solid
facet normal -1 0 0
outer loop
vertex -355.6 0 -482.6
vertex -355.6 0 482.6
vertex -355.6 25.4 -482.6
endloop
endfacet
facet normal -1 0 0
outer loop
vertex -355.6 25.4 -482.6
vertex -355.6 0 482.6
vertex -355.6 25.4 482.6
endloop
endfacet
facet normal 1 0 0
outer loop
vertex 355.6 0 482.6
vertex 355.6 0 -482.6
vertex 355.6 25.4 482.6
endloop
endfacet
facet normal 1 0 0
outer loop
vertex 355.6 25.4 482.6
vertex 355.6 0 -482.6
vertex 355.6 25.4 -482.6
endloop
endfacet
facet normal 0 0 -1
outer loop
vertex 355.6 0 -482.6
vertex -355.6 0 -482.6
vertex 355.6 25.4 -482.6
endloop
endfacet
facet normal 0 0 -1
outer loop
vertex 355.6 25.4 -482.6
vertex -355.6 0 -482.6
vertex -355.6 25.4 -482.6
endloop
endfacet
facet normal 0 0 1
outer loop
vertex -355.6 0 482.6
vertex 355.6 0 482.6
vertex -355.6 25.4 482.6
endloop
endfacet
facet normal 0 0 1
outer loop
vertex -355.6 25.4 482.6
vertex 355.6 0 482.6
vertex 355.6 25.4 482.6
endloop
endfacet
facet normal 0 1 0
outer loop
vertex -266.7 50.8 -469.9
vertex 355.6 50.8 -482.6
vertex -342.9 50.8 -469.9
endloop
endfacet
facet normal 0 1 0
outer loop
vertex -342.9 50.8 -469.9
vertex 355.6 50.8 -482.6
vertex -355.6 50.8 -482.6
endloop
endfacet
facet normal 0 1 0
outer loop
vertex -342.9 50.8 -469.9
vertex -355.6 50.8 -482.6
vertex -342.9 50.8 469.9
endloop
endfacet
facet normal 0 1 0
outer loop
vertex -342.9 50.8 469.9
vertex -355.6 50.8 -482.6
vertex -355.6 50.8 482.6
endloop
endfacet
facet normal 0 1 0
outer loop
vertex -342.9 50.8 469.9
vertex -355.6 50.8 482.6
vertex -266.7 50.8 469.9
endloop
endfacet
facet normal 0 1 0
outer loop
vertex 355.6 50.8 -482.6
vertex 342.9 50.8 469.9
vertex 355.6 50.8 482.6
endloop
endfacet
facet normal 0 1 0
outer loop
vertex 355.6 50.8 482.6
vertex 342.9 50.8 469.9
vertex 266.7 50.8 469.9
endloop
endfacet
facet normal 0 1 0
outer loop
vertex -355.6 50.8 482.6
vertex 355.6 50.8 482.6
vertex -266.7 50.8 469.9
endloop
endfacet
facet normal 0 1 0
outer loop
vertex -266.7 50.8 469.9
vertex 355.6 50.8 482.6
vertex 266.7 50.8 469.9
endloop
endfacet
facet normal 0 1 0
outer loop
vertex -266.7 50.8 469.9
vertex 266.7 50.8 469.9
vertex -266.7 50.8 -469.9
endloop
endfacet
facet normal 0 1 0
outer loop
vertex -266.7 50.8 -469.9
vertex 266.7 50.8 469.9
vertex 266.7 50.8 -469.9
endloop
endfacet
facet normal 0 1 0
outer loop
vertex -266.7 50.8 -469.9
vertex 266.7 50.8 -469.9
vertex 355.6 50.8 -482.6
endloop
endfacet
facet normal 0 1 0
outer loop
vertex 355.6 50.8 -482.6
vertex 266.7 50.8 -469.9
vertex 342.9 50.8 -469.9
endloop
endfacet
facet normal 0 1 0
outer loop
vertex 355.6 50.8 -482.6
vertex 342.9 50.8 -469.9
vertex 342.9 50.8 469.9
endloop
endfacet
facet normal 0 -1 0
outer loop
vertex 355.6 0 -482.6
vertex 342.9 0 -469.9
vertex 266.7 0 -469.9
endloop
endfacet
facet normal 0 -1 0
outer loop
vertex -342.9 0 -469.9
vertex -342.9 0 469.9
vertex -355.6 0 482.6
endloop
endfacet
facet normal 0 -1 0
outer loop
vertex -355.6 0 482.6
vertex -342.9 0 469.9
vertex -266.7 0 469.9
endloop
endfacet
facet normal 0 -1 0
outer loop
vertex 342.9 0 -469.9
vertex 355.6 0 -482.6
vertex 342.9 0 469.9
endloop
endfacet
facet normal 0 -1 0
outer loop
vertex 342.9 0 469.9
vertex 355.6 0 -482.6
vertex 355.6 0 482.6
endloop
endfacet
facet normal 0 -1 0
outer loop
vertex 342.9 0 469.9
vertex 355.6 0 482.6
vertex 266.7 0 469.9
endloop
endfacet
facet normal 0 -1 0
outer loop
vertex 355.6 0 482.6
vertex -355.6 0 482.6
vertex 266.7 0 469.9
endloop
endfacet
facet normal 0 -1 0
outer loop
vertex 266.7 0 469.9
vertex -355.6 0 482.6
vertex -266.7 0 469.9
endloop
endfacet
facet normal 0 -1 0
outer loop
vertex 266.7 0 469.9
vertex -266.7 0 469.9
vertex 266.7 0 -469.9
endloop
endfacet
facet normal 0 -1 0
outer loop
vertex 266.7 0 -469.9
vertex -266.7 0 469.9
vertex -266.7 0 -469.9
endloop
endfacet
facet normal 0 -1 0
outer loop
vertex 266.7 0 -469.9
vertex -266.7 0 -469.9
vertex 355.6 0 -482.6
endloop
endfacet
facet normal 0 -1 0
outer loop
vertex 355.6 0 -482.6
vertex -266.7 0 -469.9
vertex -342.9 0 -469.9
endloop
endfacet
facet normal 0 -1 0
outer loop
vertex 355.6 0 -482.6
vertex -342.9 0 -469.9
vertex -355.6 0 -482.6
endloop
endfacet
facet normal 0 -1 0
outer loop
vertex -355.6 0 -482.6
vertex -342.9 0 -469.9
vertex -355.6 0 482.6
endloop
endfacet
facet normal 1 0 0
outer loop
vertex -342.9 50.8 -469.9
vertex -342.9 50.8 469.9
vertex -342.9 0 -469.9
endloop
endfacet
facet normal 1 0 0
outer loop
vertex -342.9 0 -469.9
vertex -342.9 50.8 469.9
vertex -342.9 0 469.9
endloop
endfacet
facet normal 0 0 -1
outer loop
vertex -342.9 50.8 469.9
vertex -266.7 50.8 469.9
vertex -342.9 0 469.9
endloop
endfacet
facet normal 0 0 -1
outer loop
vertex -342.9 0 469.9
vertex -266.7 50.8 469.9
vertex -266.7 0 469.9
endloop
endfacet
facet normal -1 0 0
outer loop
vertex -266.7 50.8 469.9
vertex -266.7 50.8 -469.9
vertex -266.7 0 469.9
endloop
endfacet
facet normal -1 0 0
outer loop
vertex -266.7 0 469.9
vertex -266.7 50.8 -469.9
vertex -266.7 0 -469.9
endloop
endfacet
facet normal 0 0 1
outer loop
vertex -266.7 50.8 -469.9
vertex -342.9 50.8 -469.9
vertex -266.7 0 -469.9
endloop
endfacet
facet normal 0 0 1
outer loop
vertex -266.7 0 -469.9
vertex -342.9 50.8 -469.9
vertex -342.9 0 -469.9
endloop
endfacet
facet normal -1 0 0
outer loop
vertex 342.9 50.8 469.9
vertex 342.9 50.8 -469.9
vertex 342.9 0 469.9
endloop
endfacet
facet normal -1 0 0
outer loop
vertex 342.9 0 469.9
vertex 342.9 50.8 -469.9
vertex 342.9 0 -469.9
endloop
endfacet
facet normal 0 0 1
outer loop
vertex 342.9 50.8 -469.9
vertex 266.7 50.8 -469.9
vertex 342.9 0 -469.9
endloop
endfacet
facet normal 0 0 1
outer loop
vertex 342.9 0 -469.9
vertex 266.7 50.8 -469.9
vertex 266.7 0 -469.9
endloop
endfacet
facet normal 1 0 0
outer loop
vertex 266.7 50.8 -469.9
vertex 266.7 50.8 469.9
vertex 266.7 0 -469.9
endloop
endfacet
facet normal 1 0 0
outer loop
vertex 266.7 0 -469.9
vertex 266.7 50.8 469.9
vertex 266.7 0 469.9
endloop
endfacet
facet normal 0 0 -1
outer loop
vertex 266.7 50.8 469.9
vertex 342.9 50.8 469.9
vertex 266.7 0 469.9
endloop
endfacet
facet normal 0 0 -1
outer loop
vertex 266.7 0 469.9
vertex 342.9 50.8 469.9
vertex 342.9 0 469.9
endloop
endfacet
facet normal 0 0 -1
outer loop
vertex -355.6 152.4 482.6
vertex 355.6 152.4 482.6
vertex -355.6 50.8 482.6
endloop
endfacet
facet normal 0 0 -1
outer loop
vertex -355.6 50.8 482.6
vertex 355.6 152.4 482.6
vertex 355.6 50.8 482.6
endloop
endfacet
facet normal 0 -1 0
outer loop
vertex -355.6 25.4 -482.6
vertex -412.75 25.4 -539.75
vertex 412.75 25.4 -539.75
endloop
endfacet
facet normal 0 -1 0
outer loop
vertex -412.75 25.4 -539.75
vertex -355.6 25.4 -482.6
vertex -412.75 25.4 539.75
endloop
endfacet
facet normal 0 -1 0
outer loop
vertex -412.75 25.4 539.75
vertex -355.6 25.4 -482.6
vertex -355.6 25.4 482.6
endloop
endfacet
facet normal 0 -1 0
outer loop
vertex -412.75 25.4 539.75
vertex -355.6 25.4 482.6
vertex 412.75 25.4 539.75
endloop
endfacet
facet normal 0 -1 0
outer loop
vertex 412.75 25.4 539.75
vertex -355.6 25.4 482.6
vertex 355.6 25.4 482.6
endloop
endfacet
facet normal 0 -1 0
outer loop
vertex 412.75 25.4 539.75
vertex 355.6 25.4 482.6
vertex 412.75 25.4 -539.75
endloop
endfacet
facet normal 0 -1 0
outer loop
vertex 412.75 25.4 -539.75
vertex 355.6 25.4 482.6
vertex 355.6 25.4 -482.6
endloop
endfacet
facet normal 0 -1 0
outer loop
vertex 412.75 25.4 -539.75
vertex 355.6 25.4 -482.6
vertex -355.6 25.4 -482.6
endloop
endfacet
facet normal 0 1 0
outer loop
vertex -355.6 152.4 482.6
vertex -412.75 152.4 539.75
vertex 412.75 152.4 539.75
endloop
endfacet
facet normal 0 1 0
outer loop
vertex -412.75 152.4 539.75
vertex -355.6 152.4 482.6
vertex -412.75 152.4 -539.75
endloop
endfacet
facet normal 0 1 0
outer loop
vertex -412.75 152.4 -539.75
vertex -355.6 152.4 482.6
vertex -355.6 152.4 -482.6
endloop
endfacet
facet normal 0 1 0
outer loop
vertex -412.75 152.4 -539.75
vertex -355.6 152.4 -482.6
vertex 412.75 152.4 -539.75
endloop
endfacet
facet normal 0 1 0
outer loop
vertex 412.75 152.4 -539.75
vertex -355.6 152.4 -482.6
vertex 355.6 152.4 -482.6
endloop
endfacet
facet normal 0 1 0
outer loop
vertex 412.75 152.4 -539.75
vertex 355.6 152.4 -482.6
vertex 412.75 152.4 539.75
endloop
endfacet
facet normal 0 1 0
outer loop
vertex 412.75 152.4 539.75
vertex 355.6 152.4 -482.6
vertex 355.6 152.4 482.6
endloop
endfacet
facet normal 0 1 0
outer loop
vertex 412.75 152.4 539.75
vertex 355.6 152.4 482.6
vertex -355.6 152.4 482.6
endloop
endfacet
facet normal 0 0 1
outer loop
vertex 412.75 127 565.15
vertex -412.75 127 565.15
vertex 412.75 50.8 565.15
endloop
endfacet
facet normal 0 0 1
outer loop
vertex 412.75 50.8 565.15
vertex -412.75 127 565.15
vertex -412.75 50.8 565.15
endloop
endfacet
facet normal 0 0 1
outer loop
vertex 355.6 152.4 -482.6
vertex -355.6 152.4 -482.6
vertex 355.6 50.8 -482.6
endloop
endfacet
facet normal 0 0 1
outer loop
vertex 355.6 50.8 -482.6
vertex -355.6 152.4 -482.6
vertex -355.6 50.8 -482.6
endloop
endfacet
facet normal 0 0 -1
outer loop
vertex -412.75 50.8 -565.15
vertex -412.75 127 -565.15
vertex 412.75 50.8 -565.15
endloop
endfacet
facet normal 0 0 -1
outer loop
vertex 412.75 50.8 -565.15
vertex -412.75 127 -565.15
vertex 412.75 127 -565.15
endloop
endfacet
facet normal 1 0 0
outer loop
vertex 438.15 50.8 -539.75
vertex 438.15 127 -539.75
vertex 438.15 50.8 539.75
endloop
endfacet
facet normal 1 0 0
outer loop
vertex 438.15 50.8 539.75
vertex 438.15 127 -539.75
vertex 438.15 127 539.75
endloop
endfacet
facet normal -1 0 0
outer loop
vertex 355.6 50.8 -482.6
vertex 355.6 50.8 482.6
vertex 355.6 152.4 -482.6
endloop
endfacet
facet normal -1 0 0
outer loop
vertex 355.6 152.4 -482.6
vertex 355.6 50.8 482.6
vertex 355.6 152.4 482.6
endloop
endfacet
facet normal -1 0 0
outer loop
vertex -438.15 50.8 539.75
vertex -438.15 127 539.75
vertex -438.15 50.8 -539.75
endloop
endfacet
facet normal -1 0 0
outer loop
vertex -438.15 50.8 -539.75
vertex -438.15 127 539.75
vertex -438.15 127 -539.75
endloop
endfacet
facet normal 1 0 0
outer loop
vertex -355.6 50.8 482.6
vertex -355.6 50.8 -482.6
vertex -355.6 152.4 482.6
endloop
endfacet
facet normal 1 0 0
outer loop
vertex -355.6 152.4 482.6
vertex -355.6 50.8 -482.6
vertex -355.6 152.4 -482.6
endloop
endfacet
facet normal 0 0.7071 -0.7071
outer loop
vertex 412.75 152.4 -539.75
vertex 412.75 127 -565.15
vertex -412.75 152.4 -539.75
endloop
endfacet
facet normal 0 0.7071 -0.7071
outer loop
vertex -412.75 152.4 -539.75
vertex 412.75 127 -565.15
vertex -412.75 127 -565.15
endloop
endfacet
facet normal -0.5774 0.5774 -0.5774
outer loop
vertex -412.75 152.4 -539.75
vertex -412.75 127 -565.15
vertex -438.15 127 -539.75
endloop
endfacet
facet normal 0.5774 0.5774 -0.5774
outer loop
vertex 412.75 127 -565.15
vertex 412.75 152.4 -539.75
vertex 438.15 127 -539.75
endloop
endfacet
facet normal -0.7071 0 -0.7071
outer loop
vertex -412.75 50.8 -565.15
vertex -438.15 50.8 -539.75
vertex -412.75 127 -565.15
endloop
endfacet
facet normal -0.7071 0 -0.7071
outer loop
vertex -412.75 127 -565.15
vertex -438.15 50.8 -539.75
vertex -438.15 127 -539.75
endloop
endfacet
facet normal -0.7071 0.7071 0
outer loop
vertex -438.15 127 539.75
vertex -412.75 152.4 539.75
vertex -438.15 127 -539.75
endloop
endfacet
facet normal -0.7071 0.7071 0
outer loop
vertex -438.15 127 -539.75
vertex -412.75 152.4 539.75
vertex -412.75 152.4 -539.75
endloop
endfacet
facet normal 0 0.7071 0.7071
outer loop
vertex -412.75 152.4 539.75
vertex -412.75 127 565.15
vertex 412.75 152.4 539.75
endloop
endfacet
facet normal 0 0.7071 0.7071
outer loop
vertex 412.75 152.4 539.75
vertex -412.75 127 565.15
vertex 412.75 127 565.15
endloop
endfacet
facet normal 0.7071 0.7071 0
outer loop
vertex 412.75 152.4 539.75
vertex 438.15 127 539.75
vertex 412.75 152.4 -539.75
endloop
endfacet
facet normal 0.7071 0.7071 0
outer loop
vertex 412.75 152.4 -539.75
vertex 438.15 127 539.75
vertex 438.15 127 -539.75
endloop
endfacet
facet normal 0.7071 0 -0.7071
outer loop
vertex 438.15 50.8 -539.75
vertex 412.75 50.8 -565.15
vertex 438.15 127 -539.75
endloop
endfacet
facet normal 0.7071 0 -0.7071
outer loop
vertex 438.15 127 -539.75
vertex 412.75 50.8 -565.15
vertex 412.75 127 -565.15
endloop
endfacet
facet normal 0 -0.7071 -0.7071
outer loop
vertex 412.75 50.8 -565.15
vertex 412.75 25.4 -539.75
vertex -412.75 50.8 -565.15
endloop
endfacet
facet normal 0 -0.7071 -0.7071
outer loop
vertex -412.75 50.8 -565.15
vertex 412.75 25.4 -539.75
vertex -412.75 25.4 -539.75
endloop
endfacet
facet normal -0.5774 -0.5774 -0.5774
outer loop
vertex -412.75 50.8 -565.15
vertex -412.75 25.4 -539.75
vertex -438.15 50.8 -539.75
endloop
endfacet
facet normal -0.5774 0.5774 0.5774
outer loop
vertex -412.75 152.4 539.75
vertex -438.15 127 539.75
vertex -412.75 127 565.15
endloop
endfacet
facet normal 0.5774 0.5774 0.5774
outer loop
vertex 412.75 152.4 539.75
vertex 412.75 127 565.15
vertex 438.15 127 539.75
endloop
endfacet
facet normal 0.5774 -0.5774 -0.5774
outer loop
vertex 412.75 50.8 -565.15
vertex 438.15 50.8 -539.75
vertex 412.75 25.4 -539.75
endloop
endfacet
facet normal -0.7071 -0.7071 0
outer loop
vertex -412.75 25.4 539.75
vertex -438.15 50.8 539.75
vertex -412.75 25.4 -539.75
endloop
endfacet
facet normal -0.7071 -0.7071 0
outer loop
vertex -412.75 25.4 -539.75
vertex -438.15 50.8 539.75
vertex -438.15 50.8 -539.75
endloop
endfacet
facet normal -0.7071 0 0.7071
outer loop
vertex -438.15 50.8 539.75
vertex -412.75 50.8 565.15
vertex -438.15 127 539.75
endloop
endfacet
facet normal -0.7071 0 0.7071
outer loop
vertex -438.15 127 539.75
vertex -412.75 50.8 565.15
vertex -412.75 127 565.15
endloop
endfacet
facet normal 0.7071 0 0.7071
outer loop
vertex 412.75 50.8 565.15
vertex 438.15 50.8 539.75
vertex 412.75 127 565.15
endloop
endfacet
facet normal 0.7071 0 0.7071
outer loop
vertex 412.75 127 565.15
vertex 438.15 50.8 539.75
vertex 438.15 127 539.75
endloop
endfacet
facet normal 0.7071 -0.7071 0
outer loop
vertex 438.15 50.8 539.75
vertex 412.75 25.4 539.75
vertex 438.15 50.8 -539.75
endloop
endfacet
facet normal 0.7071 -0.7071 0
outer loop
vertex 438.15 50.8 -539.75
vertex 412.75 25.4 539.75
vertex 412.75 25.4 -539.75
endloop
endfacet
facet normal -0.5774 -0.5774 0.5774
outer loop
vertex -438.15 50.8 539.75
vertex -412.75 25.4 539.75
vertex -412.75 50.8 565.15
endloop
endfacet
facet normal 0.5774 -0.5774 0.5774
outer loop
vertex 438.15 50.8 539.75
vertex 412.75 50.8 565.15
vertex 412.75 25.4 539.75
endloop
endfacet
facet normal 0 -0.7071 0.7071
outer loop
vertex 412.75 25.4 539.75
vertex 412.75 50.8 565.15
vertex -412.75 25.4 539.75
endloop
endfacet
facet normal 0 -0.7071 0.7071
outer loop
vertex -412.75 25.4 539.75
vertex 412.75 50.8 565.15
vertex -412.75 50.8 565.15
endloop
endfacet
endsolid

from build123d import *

# Parameters (mm, degrees)
SKETCH1_W           = 711.2
SKETCH1_H           = 965.2
SKETCH1_W_2         = 76.2
SKETCH1_H_2         = 939.8
BOSS_EXTRUDE1_DEPTH = 50.8
SKETCH2_W           = 711.2
SKETCH2_H           = 127
BOSS_EXTRUDE2_DEPTH = 82.55
SKETCH3_W           = 711.2
SKETCH3_H           = 127
BOSS_EXTRUDE3_DEPTH = 82.55
SKETCH4_W           = 1130.3
SKETCH4_H           = 127
BOSS_EXTRUDE4_DEPTH = 82.55
SKETCH5_W           = 1130.3
SKETCH5_H           = 127
BOSS_EXTRUDE5_DEPTH = 82.55
CHAMFER1_SIZE       = 25.4


with BuildPart() as part:
    # Sketch1 → Boss-Extrude1 (new body)
    with BuildSketch(Plane(origin=(0, 0, 0), x_dir=(1, 0, 0), z_dir=(0, 1, 0))):
        Rectangle(SKETCH1_W, SKETCH1_H)
        with Locations((-304.8, 0)):
            Rectangle(SKETCH1_W_2, SKETCH1_H_2, mode=Mode.SUBTRACT)
        with Locations((304.8, 0)):
            Rectangle(SKETCH1_W_2, SKETCH1_H_2, mode=Mode.SUBTRACT)
    extrude(amount=BOSS_EXTRUDE1_DEPTH)

    # Sketch2 → Boss-Extrude2 (add)
    with BuildSketch(Plane.XY.offset(482.6)):
        with Locations((0, 88.9)):
            Rectangle(SKETCH2_W, SKETCH2_H)
    extrude(amount=BOSS_EXTRUDE2_DEPTH)

    # Sketch3 → Boss-Extrude3 (add)
    with BuildSketch(Plane(origin=(0, 0, -482.6), x_dir=(-1, 0, 0), z_dir=(0, 0, -1))):
        with Locations((0, 88.9)):
            Rectangle(SKETCH3_W, SKETCH3_H)
    extrude(amount=BOSS_EXTRUDE3_DEPTH)

    # Sketch4 → Boss-Extrude4 (add)
    with BuildSketch(Plane(origin=(355.6, 0, 0), x_dir=(0, 0, -1), z_dir=(1, 0, 0))):
        with Locations((0, 88.9)):
            Rectangle(SKETCH4_W, SKETCH4_H)
    extrude(amount=BOSS_EXTRUDE4_DEPTH)

    # Sketch5 → Boss-Extrude5 (add)
    with BuildSketch(Plane.ZY.offset(355.6)):
        with Locations((0, 88.9)):
            Rectangle(SKETCH5_W, SKETCH5_H)
    extrude(amount=BOSS_EXTRUDE5_DEPTH)

    # Chamfer1
    chamfer1_edges = [part.edges().sort_by_distance(p)[0] for p in [
        (0, 25.4, 565.15),
        (0, 152.4, 565.15),
        (0, 25.4, -565.15),
        (0, 152.4, -565.15),
        (438.15, 88.9, 565.15),
        (438.15, 25.4, 0),
        (438.15, 88.9, -565.15),
        (438.15, 152.4, 0),
        (-438.15, 88.9, -565.15),
        (-438.15, 25.4, 0),
        (-438.15, 88.9, 565.15),
        (-438.15, 152.4, 0),
    ]]
    chamfer(chamfer1_edges, length=CHAMFER1_SIZE)


solid = part.part
